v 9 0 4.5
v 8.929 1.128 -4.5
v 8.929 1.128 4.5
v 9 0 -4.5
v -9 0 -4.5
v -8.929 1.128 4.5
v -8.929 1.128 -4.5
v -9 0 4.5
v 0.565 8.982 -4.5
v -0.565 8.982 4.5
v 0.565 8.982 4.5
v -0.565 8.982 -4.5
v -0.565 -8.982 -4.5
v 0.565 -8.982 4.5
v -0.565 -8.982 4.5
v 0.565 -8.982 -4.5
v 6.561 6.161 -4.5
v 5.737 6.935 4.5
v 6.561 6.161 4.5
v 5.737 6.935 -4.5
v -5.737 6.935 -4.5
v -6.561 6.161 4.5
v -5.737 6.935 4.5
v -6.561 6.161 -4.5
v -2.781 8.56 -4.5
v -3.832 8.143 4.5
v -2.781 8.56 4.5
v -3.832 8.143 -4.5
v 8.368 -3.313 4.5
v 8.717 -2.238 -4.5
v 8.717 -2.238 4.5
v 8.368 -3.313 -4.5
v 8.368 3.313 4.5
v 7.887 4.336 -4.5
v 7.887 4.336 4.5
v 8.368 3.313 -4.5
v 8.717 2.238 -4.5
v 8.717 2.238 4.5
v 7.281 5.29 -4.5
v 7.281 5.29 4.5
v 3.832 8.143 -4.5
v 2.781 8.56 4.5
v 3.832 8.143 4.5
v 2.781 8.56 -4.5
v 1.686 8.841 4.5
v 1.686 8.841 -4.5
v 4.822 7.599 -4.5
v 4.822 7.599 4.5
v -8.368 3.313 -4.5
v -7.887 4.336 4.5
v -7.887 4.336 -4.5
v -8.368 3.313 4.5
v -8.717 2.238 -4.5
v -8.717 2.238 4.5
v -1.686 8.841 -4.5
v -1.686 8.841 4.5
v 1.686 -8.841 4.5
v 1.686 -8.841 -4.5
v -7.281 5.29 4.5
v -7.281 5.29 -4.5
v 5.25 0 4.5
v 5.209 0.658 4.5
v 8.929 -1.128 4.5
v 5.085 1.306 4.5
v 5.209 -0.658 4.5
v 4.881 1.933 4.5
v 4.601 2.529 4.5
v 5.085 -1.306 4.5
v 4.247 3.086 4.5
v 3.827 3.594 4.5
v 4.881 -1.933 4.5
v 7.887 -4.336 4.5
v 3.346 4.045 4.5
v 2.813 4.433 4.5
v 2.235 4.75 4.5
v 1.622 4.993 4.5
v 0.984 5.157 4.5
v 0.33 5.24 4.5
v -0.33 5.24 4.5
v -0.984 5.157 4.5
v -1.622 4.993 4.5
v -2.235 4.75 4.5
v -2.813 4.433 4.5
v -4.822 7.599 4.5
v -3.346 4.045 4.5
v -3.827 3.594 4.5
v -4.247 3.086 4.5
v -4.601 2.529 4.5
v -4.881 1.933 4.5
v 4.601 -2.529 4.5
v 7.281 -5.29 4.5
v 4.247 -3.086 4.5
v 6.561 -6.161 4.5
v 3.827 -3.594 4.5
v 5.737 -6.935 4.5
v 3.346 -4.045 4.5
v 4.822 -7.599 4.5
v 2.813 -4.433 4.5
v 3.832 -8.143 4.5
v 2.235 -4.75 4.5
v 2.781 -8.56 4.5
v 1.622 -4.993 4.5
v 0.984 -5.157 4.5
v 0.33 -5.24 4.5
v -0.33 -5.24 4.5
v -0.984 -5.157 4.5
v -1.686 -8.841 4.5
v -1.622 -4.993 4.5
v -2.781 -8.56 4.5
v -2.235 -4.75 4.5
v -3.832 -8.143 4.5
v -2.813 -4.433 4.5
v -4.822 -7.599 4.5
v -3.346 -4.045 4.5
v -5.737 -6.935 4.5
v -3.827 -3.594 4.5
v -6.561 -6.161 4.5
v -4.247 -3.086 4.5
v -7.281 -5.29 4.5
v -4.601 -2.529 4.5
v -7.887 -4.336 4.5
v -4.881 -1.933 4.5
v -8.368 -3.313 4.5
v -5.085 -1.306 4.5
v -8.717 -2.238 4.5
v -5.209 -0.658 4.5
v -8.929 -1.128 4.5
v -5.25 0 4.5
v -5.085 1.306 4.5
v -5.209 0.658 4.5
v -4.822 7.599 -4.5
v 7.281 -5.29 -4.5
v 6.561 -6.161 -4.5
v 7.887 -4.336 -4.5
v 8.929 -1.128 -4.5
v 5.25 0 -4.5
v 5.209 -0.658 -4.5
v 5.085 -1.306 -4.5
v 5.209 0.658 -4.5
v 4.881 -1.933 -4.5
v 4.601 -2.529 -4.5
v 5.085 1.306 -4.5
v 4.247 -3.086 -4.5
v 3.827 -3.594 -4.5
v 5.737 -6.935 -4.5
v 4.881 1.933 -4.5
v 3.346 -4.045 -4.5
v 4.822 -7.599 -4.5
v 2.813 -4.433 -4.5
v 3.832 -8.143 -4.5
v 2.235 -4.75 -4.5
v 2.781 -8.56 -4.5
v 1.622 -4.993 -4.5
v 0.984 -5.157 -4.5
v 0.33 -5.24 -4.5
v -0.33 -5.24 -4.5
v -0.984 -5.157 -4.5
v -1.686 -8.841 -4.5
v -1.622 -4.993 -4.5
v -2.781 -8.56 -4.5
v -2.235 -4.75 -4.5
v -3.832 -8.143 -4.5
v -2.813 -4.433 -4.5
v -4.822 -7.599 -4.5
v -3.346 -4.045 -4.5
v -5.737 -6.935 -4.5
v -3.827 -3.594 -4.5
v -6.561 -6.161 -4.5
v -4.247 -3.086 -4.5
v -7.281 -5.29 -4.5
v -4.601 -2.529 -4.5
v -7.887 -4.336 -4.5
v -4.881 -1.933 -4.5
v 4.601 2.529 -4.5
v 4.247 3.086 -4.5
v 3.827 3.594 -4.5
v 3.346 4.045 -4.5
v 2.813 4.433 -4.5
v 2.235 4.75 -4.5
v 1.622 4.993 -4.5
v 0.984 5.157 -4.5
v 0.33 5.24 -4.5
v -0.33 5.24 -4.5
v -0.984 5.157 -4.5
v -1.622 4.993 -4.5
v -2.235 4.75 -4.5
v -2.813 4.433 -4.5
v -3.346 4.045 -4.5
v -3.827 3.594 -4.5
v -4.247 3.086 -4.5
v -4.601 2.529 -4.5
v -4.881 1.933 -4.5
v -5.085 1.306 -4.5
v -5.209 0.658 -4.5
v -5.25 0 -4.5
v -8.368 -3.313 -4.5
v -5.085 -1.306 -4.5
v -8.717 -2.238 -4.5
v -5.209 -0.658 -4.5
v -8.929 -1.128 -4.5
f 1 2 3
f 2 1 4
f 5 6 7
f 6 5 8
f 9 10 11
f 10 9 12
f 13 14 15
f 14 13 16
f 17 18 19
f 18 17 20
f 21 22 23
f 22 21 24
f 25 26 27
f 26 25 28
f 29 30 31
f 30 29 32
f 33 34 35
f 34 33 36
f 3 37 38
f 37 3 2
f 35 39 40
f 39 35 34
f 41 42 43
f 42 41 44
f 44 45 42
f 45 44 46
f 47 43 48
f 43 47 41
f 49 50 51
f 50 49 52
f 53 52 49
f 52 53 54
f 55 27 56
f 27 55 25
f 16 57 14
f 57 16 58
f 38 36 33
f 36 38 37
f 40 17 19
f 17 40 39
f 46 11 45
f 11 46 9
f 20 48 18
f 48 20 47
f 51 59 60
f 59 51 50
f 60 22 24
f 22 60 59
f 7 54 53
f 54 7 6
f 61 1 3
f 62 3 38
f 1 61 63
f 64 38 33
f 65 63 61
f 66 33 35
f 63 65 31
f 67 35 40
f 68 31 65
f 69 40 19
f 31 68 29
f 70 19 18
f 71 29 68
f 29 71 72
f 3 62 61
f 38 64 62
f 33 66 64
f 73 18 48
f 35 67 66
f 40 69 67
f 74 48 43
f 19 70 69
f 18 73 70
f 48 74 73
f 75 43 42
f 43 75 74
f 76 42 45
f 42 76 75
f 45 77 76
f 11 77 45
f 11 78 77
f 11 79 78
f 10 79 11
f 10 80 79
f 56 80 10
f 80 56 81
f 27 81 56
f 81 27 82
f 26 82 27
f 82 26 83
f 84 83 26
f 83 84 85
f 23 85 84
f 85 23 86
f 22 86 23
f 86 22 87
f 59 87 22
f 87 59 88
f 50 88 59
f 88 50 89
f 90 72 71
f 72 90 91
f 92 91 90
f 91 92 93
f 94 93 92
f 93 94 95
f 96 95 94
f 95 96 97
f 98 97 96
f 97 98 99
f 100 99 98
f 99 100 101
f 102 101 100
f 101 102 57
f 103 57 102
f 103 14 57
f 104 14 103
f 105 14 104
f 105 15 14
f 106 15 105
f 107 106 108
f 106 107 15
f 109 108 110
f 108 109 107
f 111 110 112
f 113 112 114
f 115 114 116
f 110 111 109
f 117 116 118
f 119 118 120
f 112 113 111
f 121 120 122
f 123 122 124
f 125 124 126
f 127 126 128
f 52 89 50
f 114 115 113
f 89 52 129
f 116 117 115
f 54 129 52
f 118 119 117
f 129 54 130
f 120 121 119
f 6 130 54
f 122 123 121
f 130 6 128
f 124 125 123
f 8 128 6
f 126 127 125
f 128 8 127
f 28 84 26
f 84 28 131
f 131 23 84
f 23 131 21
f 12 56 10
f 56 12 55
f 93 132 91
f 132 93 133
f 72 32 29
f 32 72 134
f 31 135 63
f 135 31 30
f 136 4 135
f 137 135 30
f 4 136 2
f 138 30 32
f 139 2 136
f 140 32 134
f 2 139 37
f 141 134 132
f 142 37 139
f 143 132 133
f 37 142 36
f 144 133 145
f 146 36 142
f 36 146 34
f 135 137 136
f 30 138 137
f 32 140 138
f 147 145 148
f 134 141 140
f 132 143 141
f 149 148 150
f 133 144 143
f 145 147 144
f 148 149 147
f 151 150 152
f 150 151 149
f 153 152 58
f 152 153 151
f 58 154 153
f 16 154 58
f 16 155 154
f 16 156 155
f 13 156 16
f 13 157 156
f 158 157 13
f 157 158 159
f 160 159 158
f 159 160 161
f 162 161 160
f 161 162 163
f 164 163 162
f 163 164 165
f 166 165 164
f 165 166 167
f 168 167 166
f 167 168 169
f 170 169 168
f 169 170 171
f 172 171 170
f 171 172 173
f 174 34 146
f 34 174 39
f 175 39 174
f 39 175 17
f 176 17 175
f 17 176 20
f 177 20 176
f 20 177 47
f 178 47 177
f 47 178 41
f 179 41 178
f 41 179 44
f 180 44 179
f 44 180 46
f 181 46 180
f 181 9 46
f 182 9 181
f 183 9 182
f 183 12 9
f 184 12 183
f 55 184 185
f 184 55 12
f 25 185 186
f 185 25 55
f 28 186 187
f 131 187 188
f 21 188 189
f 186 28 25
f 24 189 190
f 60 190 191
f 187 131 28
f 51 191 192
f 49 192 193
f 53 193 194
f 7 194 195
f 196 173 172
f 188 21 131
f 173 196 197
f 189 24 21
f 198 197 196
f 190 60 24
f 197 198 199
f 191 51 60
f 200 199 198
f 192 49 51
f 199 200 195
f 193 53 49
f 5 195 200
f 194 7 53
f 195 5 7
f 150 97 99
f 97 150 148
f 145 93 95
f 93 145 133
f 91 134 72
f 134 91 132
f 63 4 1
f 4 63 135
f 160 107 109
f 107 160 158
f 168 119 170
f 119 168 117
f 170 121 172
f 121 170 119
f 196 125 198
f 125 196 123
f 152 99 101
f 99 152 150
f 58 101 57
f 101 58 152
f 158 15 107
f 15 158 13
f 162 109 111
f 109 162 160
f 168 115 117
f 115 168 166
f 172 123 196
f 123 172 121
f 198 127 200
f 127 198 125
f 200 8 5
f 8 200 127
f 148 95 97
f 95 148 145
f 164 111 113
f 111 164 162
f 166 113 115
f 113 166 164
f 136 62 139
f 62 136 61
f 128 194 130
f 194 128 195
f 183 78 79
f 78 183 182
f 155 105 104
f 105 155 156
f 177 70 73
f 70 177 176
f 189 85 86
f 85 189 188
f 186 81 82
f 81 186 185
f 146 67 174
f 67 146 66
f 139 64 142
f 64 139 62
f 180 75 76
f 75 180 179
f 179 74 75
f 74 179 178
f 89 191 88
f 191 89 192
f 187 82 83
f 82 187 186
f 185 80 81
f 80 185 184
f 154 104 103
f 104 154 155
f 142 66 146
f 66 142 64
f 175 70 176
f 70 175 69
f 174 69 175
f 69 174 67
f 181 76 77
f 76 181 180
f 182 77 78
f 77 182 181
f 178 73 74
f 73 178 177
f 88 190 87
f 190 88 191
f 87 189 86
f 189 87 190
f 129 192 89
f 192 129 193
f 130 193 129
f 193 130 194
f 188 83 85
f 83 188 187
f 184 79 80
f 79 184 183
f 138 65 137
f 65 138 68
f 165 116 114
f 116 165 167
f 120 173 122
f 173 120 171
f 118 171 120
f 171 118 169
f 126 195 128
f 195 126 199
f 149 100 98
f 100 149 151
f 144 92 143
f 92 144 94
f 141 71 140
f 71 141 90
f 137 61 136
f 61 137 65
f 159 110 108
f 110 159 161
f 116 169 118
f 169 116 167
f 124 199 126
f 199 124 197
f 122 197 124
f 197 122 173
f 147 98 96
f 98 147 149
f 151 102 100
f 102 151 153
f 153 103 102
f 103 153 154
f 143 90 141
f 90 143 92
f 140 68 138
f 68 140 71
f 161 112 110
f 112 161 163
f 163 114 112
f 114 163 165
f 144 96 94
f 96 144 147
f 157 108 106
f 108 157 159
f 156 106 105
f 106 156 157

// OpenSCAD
$fn = 50;


difference() {
	union() {
		translate(v = [0, 0, -4.5000000000]) {
			cylinder(h = 9, r = 9.0000000000);
		}
	}
	union() {
		translate(v = [0, 0, -100.0000000000]) {
			cylinder(h = 200, r = 5.2500000000);
		}
	}
}
